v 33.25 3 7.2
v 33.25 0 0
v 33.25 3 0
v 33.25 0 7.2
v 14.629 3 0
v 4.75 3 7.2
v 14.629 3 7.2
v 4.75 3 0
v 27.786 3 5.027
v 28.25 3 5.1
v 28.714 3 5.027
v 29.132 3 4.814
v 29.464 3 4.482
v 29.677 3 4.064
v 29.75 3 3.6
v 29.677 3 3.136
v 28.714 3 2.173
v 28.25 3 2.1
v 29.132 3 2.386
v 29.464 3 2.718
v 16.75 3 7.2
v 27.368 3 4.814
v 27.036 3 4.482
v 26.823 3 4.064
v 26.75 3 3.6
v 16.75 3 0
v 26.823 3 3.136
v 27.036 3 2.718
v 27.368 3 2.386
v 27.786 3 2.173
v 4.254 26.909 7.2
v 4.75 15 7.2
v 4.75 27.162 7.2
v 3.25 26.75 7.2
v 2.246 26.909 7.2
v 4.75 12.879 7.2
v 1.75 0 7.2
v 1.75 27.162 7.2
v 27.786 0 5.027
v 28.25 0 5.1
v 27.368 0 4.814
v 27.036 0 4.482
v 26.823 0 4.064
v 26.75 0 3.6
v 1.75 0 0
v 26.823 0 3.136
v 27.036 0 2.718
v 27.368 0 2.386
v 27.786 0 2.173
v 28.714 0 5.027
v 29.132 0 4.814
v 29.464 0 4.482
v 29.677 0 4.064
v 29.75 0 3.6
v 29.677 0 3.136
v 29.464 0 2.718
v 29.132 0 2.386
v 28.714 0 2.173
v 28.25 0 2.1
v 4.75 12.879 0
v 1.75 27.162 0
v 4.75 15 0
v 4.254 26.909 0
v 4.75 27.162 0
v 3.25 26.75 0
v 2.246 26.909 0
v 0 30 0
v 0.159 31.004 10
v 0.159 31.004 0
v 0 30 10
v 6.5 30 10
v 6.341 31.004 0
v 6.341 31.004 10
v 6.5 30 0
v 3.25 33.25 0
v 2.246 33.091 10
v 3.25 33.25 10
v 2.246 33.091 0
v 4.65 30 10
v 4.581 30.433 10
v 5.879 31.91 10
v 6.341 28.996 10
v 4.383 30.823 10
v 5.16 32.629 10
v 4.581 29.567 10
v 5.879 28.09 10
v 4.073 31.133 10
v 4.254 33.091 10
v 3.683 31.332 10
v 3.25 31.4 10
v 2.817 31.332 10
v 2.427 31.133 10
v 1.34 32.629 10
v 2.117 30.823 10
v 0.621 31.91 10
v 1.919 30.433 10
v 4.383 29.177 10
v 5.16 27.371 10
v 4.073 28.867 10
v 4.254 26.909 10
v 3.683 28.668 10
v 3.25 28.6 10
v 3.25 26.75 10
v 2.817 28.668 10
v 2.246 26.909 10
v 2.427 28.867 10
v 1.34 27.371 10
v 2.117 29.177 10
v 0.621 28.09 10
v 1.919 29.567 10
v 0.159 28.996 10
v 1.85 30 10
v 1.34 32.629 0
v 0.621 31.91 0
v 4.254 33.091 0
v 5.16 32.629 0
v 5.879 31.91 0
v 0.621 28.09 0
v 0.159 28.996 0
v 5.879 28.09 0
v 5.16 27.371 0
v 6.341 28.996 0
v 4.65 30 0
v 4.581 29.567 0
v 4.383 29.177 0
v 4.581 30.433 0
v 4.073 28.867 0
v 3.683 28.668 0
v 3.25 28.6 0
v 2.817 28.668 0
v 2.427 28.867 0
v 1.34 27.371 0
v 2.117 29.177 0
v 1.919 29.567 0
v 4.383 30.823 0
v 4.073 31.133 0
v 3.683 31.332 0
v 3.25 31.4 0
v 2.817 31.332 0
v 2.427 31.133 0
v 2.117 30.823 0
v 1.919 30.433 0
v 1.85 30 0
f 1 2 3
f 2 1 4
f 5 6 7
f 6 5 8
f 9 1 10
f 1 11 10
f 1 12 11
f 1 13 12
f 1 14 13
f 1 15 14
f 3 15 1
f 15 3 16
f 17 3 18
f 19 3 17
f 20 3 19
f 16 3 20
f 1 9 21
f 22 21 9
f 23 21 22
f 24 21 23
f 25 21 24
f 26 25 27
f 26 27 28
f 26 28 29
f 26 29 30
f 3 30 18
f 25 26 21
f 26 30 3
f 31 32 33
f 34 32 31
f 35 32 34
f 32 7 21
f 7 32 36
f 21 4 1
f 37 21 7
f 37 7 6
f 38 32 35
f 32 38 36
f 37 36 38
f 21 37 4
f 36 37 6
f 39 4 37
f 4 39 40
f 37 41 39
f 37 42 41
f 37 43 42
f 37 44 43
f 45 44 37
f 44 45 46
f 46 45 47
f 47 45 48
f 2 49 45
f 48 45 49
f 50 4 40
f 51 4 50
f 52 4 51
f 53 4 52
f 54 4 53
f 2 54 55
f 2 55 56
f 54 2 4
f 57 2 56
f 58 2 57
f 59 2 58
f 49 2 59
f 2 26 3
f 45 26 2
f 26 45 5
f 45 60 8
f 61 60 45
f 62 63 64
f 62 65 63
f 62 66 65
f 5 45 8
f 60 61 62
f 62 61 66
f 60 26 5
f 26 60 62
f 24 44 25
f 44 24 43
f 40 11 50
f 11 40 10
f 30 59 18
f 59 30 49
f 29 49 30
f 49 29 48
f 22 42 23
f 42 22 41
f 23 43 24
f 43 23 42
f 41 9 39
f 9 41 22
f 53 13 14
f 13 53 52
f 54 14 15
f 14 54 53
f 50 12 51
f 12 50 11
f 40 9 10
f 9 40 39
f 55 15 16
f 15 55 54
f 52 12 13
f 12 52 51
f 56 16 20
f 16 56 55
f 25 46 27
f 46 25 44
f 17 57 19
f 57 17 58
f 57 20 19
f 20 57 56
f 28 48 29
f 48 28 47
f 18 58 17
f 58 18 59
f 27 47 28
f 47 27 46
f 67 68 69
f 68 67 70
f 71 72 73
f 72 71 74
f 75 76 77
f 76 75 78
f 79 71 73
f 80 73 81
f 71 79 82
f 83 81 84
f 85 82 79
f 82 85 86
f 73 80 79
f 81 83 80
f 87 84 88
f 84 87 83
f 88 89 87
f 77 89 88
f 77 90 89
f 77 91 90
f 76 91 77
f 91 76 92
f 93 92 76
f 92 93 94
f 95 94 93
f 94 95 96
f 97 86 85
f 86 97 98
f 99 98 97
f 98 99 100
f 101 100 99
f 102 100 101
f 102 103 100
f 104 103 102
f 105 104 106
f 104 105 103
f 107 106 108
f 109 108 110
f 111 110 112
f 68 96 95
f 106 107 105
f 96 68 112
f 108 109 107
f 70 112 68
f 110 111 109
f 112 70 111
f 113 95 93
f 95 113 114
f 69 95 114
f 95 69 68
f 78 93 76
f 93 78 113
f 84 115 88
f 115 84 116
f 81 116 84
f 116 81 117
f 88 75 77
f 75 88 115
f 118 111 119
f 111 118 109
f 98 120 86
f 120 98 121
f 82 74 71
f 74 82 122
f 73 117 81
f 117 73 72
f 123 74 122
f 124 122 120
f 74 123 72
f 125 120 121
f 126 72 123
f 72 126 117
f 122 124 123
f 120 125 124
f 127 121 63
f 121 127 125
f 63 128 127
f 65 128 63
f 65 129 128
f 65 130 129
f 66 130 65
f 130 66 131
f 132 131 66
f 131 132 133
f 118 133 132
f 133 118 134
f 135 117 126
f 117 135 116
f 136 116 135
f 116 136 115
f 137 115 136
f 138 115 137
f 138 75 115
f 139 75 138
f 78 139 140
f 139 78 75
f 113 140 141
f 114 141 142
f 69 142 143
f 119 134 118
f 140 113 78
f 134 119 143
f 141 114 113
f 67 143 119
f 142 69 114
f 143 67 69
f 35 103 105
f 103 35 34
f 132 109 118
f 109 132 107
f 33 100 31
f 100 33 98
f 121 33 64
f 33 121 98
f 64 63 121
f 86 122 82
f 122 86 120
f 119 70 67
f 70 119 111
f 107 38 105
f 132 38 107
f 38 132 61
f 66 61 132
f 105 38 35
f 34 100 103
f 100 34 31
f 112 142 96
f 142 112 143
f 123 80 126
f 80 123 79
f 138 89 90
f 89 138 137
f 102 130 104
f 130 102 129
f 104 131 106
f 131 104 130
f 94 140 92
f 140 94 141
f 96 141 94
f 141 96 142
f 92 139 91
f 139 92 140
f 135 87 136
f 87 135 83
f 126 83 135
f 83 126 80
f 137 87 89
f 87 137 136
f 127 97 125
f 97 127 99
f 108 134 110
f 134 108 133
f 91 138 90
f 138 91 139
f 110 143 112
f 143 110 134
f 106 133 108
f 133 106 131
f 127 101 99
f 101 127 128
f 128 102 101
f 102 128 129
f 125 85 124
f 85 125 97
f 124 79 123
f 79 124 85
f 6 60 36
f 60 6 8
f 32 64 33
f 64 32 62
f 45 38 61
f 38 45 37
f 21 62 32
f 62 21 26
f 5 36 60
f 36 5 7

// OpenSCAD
/*
 * Inspired by the "TinyBoy / Fabrikator mini Cam holder"
 * by "andy_a":
 * http://www.thingiverse.com/thing:1434698
 *
 * Created by:
 * Thomas Buck <xythobuz@xythobuz.de> in April 2016
 *
 * Licensed under the Creative Commons - Attribution license.
 */

height = 10;
wallSize = 3;
screwInner = 2.8;
screwOuter = 6.5;
fitGap = 0.4;

width = 30;
length = 30;

$fn = 20;

// -----------------------------------------------------------

module half_circle(d, h) {
    difference() {
        cylinder(d = d, h = h);
        
        translate([0, -(d / 2) - 1, -1])
            cube([(d / 2) + 1, d + 2, h + 2]);
    }
}

module screw() {
    difference() {
        cylinder(d = screwOuter, h = height);
        translate([0, 0, -1])
            cylinder(d = screwInner, h = height + 2);
    }
}

module quarter_circle(d, h) {
    difference() {
        cylinder(d = d, h = h);
        
        translate([0, -(d / 2) - 1, -1])
            cube([(d / 2) + 1, d + 2, h + 2]);
        
        translate([-(d / 2) - 1, 0, -1])
            cube([(d / 2) + 2, (d / 2) + 1, h + 2]);
    }
}

module webcam_shaft_center() {
    difference() {
        cube([9.5, 3.5, 8]);
        
        translate([4.5, 4, 4])
            rotate([90, 0, 0])
            cylinder(d = 3, h = 4.5);
    }
}

module webcam_shaft_end() {
    difference() {
        union() {
            // rectangular part
            translate([0, -5.5, 0])
                cube([5, 5.5, 9.5]);
            
            // front radius
            translate([5, -2.75, 0])
                cylinder(d = 5.5, h = 9.5);
            
            translate([0, 0, 9.5])
                rotate([90, 0, 0])
                quarter_circle(19, 5.5);
        }
    
        // axis hole
        translate([4.5, -2.75, -1])
            cylinder(d = 4.5, h = 11.5);
    }
}

module webcam_shaft() {
    translate([-0.5, -5.5, 9.5])
        webcam_shaft_center();

    translate([9, 0, 0])
        webcam_shaft_end();

    translate([9, -5.5, 27])
        rotate([0, 180, 180])
        webcam_shaft_end();
}

// -----------------------------------------------------------

module all() {
    %translate([9, -9.5 - fitGap, 2])
        rotate([90, 0, 180])
        webcam_shaft();
    
    difference() {
        translate([0, 0, 0])
            cube([9.5, 8 - (2 * fitGap), wallSize]);
        
        translate([5, 4 - fitGap, -1])
            cylinder(d = 3, h = wallSize + 2);
    }
    
    translate([width, height, length])
        rotate([90, 0, 0])
        screw();
    
    translate([9.5, 0, 0])
        cube([width - 10, 8 - (2 * fitGap), wallSize]);
    
    translate([width - (wallSize / 2), 0, 0])
        cube([wallSize, 8 - (2 * fitGap), length - 2]);
    
    translate([width / 2, 0, wallSize / 2])
        rotate([0, 45, 0])
        cube([wallSize / 2, 8 - (2 * fitGap), sqrt(((width / 2) * (width / 2)) + ((length / 2) * (length / 2)))]);
}

translate([width + (screwOuter / 2), 0, 0])
    rotate([90, 0, 180])
    all();
